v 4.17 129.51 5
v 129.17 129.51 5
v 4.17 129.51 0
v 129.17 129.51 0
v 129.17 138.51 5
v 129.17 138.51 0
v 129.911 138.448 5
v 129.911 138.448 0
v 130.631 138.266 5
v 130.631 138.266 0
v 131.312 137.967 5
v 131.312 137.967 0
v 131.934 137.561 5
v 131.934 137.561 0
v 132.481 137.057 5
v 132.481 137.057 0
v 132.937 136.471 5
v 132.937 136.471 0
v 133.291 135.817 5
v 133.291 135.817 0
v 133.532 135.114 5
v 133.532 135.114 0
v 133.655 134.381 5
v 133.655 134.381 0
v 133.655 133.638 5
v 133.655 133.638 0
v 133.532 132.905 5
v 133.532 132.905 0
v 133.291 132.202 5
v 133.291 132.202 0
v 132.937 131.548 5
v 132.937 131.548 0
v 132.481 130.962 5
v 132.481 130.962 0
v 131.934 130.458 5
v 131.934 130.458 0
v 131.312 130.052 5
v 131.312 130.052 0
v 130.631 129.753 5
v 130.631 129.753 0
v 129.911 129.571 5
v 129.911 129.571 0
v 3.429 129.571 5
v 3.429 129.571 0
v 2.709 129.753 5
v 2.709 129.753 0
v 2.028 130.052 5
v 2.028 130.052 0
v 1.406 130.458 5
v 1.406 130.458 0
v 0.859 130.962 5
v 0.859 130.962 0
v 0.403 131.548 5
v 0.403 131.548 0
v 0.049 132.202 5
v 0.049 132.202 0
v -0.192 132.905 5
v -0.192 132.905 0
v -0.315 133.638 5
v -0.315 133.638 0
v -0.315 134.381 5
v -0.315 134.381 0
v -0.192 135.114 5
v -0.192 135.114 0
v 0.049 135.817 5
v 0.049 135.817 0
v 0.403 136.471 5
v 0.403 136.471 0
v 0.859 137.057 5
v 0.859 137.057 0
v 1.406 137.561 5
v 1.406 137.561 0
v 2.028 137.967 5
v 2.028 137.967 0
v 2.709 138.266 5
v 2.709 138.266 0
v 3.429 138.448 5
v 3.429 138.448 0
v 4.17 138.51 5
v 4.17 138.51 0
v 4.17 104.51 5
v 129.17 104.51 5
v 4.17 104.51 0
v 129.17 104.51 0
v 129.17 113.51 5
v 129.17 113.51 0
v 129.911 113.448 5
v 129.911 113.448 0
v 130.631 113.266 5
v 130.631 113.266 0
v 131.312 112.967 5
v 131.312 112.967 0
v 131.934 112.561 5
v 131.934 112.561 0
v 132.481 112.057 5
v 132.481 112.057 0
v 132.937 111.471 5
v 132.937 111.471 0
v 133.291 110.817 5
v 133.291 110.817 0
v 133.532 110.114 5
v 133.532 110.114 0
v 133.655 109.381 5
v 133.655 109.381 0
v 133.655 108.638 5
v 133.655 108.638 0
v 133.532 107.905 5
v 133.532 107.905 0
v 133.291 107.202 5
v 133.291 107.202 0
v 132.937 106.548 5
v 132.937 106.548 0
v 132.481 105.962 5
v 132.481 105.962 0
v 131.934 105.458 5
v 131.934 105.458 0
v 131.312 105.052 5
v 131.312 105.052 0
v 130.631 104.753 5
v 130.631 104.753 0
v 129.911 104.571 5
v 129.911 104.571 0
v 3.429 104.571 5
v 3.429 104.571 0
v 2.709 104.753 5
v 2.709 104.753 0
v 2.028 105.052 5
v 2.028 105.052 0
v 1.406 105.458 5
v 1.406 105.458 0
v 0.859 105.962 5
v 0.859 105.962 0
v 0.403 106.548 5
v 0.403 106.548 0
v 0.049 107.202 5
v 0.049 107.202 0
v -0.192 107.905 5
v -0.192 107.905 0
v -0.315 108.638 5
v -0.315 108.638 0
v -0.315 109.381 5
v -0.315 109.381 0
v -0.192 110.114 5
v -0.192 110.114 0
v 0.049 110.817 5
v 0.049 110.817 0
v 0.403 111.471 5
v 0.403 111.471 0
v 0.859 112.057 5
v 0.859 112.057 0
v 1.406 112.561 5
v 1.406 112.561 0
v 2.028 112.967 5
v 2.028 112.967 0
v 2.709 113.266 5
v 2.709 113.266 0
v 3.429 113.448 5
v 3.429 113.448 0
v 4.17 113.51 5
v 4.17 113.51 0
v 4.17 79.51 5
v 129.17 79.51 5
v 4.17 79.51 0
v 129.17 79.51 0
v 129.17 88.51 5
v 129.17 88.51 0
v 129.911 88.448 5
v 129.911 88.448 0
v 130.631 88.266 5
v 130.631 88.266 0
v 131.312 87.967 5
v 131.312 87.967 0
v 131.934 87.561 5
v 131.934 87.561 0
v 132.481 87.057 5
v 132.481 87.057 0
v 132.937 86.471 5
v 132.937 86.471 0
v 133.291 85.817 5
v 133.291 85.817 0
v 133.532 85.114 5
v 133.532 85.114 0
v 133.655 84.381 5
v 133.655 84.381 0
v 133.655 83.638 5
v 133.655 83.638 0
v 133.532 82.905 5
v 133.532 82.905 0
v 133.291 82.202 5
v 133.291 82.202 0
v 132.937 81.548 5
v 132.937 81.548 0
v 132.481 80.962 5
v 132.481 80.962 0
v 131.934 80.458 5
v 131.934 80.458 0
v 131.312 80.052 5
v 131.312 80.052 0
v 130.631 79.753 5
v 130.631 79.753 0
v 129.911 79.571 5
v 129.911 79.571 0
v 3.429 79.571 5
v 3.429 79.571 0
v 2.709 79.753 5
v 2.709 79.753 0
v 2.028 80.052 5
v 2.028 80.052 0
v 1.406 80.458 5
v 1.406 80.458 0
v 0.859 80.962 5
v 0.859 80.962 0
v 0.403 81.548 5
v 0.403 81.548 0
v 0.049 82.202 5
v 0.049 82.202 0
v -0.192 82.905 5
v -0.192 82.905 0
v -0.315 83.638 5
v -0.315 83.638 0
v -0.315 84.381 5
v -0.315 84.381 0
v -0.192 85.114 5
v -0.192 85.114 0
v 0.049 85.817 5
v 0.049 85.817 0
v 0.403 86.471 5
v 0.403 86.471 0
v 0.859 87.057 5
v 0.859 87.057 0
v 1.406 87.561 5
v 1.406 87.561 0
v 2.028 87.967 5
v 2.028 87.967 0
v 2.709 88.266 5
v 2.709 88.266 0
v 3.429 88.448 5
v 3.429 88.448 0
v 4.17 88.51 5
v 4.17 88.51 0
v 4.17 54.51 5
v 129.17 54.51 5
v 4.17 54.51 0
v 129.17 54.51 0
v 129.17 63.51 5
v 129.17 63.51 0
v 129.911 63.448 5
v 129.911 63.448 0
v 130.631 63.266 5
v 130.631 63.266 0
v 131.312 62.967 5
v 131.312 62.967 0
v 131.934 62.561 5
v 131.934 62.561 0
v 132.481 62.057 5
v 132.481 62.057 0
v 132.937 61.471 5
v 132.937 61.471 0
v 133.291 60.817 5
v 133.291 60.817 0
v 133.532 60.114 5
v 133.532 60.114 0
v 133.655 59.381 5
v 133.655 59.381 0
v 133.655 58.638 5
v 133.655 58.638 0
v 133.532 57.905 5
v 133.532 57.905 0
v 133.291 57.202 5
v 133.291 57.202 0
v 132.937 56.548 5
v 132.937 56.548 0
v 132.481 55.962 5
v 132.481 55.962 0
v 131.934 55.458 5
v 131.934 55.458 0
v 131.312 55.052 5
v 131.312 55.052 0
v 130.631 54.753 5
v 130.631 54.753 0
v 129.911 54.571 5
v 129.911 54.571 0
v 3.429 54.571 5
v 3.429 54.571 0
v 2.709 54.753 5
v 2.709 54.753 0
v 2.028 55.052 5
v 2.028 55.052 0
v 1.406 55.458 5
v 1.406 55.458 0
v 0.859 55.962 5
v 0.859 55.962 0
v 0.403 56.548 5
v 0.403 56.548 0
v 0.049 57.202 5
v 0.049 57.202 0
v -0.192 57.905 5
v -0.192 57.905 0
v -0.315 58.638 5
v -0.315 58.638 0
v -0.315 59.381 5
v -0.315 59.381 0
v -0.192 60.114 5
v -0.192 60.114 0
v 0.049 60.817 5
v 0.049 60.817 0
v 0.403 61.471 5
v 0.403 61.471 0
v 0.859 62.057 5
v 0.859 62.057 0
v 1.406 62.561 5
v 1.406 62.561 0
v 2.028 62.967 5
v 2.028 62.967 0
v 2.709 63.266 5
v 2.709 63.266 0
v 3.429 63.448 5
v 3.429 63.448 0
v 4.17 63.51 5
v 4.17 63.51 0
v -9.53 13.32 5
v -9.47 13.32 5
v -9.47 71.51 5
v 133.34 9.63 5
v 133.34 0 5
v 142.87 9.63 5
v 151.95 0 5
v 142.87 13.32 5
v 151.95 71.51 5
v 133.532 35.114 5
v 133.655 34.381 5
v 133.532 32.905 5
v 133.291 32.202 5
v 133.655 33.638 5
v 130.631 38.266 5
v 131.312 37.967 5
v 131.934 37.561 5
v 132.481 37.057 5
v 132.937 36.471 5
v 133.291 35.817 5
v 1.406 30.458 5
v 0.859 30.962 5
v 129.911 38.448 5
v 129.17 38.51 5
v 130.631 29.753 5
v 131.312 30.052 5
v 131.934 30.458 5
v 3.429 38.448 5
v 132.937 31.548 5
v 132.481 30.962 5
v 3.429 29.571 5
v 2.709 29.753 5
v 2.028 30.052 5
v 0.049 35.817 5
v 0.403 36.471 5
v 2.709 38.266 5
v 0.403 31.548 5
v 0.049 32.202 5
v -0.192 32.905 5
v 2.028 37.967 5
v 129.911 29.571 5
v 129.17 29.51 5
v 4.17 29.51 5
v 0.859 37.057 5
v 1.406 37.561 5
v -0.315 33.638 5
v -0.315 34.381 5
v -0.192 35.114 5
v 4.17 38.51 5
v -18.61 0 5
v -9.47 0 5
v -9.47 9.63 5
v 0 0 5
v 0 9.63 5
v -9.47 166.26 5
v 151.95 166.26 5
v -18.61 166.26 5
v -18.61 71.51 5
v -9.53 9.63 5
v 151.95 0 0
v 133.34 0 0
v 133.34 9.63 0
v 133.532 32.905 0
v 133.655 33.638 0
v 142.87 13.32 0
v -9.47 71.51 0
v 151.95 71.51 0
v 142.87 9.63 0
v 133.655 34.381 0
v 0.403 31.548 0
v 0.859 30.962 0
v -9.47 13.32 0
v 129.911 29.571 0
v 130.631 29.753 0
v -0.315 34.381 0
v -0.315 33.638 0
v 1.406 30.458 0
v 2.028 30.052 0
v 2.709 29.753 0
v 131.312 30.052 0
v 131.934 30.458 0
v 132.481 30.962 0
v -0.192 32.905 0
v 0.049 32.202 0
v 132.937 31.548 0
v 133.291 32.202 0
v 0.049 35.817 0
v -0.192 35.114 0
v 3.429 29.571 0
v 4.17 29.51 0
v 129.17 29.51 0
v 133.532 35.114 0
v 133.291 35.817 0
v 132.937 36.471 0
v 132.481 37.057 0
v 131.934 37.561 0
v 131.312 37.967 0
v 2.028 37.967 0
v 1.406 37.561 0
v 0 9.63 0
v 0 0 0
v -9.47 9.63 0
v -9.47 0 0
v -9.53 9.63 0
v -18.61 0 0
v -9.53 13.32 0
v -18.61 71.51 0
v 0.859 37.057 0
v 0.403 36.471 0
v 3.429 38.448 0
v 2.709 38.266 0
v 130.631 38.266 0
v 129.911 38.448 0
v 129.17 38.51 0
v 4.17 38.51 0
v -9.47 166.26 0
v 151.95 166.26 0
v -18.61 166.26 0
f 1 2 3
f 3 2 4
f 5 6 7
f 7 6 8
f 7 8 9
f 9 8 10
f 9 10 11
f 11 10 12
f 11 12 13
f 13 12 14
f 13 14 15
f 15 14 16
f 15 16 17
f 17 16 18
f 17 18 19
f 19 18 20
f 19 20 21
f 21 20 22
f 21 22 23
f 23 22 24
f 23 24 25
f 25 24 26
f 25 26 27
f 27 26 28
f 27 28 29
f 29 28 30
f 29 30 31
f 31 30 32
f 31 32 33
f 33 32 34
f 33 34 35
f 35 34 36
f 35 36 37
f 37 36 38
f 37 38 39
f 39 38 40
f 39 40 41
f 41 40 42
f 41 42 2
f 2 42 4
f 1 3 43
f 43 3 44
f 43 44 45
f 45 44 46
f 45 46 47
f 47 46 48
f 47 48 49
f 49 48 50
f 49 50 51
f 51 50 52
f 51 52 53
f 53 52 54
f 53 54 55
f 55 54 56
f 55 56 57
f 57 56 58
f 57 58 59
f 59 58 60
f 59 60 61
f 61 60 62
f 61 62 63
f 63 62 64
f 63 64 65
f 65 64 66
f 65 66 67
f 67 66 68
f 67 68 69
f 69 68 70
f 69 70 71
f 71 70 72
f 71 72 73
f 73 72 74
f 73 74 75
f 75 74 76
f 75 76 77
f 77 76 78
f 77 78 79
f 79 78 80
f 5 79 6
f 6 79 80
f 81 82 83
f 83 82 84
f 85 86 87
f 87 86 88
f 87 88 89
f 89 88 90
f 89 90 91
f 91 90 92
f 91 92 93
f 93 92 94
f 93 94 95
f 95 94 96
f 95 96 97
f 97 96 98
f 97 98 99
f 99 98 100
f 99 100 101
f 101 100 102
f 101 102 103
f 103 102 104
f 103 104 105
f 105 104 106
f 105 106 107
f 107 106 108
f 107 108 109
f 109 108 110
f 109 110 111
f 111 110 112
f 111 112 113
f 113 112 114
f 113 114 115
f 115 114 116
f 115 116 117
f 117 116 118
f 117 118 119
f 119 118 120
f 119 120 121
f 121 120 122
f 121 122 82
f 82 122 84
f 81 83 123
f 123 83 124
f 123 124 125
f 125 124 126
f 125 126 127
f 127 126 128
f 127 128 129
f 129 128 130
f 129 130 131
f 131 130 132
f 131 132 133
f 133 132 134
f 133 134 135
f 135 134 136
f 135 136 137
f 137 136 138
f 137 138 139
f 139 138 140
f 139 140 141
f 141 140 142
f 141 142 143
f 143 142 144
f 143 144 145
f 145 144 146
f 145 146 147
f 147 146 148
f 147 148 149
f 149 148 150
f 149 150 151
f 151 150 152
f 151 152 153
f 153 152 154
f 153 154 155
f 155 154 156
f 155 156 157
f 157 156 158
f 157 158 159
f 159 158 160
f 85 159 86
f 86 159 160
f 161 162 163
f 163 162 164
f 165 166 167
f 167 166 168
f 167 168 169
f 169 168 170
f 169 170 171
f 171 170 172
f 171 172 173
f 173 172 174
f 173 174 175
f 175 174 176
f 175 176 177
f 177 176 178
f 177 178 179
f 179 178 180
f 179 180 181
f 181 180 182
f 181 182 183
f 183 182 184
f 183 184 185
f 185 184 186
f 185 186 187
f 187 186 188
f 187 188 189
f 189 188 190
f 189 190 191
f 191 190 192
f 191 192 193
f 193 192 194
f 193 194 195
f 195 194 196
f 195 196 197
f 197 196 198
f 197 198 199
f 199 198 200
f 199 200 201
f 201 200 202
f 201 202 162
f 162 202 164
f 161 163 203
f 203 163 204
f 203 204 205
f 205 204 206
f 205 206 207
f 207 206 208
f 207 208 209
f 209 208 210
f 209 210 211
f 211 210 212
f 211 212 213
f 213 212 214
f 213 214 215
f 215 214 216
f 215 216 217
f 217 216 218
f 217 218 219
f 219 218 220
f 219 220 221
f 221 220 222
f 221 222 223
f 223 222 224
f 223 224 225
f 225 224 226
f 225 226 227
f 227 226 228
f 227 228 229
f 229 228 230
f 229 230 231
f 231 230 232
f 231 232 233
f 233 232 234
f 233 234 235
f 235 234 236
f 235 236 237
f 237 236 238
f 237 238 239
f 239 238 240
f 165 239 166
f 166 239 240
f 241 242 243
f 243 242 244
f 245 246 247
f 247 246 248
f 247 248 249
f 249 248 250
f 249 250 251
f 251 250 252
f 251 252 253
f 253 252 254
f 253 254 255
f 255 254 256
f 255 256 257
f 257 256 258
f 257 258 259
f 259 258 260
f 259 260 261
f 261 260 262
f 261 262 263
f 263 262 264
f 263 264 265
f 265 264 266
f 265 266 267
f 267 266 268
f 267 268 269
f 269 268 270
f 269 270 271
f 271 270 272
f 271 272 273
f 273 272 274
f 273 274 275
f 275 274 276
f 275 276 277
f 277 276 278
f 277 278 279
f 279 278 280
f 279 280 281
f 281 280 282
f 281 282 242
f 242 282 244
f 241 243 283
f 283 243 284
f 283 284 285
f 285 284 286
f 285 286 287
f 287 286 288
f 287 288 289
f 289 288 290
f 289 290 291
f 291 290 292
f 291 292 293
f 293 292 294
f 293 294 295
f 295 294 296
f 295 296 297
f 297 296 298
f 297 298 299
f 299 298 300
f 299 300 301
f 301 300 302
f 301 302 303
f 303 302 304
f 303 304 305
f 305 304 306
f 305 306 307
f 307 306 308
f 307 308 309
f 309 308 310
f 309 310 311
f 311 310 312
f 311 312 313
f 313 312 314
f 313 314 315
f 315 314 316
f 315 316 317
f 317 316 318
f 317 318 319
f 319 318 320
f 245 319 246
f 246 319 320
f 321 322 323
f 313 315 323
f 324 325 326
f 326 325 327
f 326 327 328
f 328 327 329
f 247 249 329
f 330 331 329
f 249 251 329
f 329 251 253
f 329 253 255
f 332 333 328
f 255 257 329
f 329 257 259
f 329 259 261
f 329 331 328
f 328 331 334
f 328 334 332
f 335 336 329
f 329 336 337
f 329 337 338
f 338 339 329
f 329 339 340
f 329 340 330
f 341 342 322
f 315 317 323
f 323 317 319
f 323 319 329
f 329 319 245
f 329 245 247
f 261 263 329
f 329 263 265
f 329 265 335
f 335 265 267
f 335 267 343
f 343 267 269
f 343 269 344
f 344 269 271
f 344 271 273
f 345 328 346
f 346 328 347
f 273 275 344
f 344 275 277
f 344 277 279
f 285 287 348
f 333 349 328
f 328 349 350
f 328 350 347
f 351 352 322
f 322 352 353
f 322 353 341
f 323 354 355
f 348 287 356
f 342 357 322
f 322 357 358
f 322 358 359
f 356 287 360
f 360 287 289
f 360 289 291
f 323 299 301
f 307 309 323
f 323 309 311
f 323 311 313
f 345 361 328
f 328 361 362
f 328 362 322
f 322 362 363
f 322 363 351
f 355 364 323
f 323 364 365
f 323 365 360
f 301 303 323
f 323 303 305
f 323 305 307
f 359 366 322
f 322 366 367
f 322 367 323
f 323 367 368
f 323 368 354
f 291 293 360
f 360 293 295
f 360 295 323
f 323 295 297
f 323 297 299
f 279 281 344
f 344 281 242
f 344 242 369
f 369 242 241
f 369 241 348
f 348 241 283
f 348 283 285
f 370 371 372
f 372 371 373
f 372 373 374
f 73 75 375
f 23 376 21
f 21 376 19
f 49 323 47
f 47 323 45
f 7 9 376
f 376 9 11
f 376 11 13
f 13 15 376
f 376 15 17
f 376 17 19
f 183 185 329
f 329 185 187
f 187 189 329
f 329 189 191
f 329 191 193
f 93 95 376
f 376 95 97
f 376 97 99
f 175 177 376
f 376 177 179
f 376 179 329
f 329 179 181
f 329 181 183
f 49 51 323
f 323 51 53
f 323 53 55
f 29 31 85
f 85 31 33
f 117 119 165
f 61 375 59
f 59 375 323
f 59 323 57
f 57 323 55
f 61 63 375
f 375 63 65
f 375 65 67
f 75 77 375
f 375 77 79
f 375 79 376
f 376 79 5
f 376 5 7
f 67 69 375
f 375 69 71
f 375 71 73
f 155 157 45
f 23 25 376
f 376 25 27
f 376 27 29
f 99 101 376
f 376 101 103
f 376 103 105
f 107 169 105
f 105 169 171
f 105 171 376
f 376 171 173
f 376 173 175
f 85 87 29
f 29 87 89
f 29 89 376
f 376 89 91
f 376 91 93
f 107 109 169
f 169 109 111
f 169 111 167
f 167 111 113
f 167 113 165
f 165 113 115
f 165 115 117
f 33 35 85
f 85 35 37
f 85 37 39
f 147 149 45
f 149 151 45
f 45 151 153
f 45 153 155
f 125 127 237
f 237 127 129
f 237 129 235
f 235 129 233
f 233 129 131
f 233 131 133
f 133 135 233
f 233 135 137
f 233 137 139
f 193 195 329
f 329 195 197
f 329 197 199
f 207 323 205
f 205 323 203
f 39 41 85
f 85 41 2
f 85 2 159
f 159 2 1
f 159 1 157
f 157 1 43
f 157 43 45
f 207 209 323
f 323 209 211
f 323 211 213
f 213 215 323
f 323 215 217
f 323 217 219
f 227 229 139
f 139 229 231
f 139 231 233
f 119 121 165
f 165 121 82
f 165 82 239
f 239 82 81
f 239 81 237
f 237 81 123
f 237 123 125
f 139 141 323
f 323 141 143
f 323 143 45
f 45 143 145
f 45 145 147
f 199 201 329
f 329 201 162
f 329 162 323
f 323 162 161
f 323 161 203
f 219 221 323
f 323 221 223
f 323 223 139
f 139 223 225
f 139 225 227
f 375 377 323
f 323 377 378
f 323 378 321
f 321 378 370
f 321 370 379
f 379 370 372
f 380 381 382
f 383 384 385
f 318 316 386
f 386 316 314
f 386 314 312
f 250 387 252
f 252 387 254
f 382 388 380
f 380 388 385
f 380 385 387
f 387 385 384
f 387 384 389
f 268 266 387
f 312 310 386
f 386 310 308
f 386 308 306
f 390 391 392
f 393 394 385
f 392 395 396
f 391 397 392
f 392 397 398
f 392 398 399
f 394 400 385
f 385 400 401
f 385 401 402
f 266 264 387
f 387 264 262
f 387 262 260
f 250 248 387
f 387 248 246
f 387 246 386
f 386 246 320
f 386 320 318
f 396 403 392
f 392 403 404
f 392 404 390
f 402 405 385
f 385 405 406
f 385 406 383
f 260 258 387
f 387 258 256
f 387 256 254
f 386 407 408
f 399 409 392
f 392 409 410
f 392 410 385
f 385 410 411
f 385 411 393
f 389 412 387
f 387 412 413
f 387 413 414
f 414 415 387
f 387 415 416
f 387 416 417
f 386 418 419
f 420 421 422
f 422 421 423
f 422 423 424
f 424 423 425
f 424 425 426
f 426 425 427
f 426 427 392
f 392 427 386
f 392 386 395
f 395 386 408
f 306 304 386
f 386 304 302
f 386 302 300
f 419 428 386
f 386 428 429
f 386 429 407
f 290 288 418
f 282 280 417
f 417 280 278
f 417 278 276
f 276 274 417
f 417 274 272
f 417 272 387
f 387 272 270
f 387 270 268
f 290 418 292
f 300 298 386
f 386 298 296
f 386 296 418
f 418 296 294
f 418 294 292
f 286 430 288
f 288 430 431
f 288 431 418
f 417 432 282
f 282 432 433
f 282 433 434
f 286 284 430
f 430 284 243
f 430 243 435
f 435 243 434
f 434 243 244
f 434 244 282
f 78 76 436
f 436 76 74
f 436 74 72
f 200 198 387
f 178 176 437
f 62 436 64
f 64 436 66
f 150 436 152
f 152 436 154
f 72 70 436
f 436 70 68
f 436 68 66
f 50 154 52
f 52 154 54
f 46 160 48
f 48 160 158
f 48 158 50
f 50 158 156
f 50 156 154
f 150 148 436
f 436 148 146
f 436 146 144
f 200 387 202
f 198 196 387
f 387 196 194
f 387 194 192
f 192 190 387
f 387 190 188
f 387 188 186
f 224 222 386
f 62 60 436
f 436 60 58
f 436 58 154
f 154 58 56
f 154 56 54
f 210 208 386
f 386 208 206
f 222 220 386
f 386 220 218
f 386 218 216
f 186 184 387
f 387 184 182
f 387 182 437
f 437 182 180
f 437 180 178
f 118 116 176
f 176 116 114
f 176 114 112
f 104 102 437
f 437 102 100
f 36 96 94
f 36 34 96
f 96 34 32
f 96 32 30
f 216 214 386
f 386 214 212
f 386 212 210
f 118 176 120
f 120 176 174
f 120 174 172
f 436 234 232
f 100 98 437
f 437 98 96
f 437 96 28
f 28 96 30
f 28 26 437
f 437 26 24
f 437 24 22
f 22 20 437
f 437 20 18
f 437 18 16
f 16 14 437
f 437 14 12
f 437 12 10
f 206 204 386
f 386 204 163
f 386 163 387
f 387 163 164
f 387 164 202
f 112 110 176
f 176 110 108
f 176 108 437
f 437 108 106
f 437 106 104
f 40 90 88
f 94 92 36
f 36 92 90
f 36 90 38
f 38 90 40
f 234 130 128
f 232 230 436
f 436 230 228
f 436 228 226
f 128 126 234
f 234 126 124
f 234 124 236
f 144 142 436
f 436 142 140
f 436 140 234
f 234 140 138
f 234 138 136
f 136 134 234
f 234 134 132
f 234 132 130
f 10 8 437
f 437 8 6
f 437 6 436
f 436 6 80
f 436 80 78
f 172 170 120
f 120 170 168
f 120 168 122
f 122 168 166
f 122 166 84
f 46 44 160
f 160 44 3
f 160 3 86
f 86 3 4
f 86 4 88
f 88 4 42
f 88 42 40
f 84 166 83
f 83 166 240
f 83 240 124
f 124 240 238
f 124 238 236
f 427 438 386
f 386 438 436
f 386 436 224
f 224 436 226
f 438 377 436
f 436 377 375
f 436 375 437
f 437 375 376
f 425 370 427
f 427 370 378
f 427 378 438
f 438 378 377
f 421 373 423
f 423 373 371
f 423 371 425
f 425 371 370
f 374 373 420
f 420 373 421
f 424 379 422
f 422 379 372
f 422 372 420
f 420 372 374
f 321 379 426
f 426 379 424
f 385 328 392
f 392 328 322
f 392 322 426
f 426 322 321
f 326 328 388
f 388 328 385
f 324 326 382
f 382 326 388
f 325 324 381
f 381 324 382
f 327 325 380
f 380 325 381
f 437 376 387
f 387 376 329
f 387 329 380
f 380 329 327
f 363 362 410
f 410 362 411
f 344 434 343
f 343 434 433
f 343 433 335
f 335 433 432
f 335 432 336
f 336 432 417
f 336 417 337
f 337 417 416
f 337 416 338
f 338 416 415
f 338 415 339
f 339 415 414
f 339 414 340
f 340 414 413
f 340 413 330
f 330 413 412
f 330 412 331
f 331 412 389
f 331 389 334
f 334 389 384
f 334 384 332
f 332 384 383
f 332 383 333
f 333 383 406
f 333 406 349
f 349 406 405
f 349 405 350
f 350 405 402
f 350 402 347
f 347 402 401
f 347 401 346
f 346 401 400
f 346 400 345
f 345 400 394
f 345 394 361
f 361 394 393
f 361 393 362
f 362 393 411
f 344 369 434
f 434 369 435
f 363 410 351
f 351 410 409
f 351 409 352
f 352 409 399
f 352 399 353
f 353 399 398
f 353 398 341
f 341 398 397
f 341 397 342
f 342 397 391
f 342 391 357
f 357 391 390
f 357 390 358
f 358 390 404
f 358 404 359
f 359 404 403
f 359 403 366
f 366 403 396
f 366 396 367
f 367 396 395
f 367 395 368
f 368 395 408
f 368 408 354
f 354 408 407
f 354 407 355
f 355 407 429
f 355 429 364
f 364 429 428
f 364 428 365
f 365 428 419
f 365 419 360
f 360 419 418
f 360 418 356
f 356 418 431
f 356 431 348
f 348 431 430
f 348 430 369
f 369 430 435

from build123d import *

# Parameters (mm, degrees)
BOSS_EXTRUDE1_DEPTH = 5
LPATTERN1_DEPTH     = 5


# Read off the part's stored shape, not the designer's step: LPattern1
with BuildPart() as part:
    # Sketch1 → Boss-Extrude1 (new body)
    with BuildSketch(Plane.XY):
        Polygon((0, 0), (0, 9.63), (-9.53, 9.63), (-9.53, 13.32), (142.87, 13.32), (142.87, 9.63), (133.34, 9.63), (133.34, 0), (151.95, 0), (151.95, 166.26), (-18.61, 166.26), (-18.61, 0), align=None)
        with BuildLine():
            Line((4.17, 38.509583336), (129.17, 38.509583336))
            ThreePointArc((129.17, 38.509583336), (133.67, 34.009583336), (129.17, 29.509583336))
            Line((129.17, 29.509583336), (4.17, 29.509583336))
            ThreePointArc((4.17, 29.509583336), (-0.33, 34.009583336), (4.17, 38.509583336))
        make_face(mode=Mode.SUBTRACT)
    extrude(amount=BOSS_EXTRUDE1_DEPTH)

    # LPattern1 outline → LPattern1 (cut)
    with BuildSketch(Plane.XY):
        with BuildLine():
            Line((4.17, 129.509583336), (129.17, 129.509583336))
            ThreePointArc((129.17, 129.509583336), (133.67, 134.009583336), (129.17, 138.509583336))
            Line((129.17, 138.509583336), (4.17, 138.509583336))
            ThreePointArc((4.17, 138.509583336), (-0.33, 134.009583336), (4.17, 129.509583336))
        make_face()
        with BuildLine():
            Line((4.17, 104.509583336), (129.17, 104.509583336))
            ThreePointArc((129.17, 104.509583336), (133.67, 109.009583336), (129.17, 113.509583336))
            Line((129.17, 113.509583336), (4.17, 113.509583336))
            ThreePointArc((4.17, 113.509583336), (-0.33, 109.009583336), (4.17, 104.509583336))
        make_face()
        with BuildLine():
            Line((4.17, 79.509583336), (129.17, 79.509583336))
            ThreePointArc((129.17, 79.509583336), (133.67, 84.009583336), (129.17, 88.509583336))
            Line((129.17, 88.509583336), (4.17, 88.509583336))
            ThreePointArc((4.17, 88.509583336), (-0.33, 84.009583336), (4.17, 79.509583336))
        make_face()
        with BuildLine():
            Line((4.17, 54.509583336), (129.17, 54.509583336))
            ThreePointArc((129.17, 54.509583336), (133.67, 59.009583336), (129.17, 63.509583336))
            Line((129.17, 63.509583336), (4.17, 63.509583336))
            ThreePointArc((4.17, 63.509583336), (-0.33, 59.009583336), (4.17, 54.509583336))
        make_face()
    extrude(amount=LPATTERN1_DEPTH, mode=Mode.SUBTRACT)


solid = part.part
